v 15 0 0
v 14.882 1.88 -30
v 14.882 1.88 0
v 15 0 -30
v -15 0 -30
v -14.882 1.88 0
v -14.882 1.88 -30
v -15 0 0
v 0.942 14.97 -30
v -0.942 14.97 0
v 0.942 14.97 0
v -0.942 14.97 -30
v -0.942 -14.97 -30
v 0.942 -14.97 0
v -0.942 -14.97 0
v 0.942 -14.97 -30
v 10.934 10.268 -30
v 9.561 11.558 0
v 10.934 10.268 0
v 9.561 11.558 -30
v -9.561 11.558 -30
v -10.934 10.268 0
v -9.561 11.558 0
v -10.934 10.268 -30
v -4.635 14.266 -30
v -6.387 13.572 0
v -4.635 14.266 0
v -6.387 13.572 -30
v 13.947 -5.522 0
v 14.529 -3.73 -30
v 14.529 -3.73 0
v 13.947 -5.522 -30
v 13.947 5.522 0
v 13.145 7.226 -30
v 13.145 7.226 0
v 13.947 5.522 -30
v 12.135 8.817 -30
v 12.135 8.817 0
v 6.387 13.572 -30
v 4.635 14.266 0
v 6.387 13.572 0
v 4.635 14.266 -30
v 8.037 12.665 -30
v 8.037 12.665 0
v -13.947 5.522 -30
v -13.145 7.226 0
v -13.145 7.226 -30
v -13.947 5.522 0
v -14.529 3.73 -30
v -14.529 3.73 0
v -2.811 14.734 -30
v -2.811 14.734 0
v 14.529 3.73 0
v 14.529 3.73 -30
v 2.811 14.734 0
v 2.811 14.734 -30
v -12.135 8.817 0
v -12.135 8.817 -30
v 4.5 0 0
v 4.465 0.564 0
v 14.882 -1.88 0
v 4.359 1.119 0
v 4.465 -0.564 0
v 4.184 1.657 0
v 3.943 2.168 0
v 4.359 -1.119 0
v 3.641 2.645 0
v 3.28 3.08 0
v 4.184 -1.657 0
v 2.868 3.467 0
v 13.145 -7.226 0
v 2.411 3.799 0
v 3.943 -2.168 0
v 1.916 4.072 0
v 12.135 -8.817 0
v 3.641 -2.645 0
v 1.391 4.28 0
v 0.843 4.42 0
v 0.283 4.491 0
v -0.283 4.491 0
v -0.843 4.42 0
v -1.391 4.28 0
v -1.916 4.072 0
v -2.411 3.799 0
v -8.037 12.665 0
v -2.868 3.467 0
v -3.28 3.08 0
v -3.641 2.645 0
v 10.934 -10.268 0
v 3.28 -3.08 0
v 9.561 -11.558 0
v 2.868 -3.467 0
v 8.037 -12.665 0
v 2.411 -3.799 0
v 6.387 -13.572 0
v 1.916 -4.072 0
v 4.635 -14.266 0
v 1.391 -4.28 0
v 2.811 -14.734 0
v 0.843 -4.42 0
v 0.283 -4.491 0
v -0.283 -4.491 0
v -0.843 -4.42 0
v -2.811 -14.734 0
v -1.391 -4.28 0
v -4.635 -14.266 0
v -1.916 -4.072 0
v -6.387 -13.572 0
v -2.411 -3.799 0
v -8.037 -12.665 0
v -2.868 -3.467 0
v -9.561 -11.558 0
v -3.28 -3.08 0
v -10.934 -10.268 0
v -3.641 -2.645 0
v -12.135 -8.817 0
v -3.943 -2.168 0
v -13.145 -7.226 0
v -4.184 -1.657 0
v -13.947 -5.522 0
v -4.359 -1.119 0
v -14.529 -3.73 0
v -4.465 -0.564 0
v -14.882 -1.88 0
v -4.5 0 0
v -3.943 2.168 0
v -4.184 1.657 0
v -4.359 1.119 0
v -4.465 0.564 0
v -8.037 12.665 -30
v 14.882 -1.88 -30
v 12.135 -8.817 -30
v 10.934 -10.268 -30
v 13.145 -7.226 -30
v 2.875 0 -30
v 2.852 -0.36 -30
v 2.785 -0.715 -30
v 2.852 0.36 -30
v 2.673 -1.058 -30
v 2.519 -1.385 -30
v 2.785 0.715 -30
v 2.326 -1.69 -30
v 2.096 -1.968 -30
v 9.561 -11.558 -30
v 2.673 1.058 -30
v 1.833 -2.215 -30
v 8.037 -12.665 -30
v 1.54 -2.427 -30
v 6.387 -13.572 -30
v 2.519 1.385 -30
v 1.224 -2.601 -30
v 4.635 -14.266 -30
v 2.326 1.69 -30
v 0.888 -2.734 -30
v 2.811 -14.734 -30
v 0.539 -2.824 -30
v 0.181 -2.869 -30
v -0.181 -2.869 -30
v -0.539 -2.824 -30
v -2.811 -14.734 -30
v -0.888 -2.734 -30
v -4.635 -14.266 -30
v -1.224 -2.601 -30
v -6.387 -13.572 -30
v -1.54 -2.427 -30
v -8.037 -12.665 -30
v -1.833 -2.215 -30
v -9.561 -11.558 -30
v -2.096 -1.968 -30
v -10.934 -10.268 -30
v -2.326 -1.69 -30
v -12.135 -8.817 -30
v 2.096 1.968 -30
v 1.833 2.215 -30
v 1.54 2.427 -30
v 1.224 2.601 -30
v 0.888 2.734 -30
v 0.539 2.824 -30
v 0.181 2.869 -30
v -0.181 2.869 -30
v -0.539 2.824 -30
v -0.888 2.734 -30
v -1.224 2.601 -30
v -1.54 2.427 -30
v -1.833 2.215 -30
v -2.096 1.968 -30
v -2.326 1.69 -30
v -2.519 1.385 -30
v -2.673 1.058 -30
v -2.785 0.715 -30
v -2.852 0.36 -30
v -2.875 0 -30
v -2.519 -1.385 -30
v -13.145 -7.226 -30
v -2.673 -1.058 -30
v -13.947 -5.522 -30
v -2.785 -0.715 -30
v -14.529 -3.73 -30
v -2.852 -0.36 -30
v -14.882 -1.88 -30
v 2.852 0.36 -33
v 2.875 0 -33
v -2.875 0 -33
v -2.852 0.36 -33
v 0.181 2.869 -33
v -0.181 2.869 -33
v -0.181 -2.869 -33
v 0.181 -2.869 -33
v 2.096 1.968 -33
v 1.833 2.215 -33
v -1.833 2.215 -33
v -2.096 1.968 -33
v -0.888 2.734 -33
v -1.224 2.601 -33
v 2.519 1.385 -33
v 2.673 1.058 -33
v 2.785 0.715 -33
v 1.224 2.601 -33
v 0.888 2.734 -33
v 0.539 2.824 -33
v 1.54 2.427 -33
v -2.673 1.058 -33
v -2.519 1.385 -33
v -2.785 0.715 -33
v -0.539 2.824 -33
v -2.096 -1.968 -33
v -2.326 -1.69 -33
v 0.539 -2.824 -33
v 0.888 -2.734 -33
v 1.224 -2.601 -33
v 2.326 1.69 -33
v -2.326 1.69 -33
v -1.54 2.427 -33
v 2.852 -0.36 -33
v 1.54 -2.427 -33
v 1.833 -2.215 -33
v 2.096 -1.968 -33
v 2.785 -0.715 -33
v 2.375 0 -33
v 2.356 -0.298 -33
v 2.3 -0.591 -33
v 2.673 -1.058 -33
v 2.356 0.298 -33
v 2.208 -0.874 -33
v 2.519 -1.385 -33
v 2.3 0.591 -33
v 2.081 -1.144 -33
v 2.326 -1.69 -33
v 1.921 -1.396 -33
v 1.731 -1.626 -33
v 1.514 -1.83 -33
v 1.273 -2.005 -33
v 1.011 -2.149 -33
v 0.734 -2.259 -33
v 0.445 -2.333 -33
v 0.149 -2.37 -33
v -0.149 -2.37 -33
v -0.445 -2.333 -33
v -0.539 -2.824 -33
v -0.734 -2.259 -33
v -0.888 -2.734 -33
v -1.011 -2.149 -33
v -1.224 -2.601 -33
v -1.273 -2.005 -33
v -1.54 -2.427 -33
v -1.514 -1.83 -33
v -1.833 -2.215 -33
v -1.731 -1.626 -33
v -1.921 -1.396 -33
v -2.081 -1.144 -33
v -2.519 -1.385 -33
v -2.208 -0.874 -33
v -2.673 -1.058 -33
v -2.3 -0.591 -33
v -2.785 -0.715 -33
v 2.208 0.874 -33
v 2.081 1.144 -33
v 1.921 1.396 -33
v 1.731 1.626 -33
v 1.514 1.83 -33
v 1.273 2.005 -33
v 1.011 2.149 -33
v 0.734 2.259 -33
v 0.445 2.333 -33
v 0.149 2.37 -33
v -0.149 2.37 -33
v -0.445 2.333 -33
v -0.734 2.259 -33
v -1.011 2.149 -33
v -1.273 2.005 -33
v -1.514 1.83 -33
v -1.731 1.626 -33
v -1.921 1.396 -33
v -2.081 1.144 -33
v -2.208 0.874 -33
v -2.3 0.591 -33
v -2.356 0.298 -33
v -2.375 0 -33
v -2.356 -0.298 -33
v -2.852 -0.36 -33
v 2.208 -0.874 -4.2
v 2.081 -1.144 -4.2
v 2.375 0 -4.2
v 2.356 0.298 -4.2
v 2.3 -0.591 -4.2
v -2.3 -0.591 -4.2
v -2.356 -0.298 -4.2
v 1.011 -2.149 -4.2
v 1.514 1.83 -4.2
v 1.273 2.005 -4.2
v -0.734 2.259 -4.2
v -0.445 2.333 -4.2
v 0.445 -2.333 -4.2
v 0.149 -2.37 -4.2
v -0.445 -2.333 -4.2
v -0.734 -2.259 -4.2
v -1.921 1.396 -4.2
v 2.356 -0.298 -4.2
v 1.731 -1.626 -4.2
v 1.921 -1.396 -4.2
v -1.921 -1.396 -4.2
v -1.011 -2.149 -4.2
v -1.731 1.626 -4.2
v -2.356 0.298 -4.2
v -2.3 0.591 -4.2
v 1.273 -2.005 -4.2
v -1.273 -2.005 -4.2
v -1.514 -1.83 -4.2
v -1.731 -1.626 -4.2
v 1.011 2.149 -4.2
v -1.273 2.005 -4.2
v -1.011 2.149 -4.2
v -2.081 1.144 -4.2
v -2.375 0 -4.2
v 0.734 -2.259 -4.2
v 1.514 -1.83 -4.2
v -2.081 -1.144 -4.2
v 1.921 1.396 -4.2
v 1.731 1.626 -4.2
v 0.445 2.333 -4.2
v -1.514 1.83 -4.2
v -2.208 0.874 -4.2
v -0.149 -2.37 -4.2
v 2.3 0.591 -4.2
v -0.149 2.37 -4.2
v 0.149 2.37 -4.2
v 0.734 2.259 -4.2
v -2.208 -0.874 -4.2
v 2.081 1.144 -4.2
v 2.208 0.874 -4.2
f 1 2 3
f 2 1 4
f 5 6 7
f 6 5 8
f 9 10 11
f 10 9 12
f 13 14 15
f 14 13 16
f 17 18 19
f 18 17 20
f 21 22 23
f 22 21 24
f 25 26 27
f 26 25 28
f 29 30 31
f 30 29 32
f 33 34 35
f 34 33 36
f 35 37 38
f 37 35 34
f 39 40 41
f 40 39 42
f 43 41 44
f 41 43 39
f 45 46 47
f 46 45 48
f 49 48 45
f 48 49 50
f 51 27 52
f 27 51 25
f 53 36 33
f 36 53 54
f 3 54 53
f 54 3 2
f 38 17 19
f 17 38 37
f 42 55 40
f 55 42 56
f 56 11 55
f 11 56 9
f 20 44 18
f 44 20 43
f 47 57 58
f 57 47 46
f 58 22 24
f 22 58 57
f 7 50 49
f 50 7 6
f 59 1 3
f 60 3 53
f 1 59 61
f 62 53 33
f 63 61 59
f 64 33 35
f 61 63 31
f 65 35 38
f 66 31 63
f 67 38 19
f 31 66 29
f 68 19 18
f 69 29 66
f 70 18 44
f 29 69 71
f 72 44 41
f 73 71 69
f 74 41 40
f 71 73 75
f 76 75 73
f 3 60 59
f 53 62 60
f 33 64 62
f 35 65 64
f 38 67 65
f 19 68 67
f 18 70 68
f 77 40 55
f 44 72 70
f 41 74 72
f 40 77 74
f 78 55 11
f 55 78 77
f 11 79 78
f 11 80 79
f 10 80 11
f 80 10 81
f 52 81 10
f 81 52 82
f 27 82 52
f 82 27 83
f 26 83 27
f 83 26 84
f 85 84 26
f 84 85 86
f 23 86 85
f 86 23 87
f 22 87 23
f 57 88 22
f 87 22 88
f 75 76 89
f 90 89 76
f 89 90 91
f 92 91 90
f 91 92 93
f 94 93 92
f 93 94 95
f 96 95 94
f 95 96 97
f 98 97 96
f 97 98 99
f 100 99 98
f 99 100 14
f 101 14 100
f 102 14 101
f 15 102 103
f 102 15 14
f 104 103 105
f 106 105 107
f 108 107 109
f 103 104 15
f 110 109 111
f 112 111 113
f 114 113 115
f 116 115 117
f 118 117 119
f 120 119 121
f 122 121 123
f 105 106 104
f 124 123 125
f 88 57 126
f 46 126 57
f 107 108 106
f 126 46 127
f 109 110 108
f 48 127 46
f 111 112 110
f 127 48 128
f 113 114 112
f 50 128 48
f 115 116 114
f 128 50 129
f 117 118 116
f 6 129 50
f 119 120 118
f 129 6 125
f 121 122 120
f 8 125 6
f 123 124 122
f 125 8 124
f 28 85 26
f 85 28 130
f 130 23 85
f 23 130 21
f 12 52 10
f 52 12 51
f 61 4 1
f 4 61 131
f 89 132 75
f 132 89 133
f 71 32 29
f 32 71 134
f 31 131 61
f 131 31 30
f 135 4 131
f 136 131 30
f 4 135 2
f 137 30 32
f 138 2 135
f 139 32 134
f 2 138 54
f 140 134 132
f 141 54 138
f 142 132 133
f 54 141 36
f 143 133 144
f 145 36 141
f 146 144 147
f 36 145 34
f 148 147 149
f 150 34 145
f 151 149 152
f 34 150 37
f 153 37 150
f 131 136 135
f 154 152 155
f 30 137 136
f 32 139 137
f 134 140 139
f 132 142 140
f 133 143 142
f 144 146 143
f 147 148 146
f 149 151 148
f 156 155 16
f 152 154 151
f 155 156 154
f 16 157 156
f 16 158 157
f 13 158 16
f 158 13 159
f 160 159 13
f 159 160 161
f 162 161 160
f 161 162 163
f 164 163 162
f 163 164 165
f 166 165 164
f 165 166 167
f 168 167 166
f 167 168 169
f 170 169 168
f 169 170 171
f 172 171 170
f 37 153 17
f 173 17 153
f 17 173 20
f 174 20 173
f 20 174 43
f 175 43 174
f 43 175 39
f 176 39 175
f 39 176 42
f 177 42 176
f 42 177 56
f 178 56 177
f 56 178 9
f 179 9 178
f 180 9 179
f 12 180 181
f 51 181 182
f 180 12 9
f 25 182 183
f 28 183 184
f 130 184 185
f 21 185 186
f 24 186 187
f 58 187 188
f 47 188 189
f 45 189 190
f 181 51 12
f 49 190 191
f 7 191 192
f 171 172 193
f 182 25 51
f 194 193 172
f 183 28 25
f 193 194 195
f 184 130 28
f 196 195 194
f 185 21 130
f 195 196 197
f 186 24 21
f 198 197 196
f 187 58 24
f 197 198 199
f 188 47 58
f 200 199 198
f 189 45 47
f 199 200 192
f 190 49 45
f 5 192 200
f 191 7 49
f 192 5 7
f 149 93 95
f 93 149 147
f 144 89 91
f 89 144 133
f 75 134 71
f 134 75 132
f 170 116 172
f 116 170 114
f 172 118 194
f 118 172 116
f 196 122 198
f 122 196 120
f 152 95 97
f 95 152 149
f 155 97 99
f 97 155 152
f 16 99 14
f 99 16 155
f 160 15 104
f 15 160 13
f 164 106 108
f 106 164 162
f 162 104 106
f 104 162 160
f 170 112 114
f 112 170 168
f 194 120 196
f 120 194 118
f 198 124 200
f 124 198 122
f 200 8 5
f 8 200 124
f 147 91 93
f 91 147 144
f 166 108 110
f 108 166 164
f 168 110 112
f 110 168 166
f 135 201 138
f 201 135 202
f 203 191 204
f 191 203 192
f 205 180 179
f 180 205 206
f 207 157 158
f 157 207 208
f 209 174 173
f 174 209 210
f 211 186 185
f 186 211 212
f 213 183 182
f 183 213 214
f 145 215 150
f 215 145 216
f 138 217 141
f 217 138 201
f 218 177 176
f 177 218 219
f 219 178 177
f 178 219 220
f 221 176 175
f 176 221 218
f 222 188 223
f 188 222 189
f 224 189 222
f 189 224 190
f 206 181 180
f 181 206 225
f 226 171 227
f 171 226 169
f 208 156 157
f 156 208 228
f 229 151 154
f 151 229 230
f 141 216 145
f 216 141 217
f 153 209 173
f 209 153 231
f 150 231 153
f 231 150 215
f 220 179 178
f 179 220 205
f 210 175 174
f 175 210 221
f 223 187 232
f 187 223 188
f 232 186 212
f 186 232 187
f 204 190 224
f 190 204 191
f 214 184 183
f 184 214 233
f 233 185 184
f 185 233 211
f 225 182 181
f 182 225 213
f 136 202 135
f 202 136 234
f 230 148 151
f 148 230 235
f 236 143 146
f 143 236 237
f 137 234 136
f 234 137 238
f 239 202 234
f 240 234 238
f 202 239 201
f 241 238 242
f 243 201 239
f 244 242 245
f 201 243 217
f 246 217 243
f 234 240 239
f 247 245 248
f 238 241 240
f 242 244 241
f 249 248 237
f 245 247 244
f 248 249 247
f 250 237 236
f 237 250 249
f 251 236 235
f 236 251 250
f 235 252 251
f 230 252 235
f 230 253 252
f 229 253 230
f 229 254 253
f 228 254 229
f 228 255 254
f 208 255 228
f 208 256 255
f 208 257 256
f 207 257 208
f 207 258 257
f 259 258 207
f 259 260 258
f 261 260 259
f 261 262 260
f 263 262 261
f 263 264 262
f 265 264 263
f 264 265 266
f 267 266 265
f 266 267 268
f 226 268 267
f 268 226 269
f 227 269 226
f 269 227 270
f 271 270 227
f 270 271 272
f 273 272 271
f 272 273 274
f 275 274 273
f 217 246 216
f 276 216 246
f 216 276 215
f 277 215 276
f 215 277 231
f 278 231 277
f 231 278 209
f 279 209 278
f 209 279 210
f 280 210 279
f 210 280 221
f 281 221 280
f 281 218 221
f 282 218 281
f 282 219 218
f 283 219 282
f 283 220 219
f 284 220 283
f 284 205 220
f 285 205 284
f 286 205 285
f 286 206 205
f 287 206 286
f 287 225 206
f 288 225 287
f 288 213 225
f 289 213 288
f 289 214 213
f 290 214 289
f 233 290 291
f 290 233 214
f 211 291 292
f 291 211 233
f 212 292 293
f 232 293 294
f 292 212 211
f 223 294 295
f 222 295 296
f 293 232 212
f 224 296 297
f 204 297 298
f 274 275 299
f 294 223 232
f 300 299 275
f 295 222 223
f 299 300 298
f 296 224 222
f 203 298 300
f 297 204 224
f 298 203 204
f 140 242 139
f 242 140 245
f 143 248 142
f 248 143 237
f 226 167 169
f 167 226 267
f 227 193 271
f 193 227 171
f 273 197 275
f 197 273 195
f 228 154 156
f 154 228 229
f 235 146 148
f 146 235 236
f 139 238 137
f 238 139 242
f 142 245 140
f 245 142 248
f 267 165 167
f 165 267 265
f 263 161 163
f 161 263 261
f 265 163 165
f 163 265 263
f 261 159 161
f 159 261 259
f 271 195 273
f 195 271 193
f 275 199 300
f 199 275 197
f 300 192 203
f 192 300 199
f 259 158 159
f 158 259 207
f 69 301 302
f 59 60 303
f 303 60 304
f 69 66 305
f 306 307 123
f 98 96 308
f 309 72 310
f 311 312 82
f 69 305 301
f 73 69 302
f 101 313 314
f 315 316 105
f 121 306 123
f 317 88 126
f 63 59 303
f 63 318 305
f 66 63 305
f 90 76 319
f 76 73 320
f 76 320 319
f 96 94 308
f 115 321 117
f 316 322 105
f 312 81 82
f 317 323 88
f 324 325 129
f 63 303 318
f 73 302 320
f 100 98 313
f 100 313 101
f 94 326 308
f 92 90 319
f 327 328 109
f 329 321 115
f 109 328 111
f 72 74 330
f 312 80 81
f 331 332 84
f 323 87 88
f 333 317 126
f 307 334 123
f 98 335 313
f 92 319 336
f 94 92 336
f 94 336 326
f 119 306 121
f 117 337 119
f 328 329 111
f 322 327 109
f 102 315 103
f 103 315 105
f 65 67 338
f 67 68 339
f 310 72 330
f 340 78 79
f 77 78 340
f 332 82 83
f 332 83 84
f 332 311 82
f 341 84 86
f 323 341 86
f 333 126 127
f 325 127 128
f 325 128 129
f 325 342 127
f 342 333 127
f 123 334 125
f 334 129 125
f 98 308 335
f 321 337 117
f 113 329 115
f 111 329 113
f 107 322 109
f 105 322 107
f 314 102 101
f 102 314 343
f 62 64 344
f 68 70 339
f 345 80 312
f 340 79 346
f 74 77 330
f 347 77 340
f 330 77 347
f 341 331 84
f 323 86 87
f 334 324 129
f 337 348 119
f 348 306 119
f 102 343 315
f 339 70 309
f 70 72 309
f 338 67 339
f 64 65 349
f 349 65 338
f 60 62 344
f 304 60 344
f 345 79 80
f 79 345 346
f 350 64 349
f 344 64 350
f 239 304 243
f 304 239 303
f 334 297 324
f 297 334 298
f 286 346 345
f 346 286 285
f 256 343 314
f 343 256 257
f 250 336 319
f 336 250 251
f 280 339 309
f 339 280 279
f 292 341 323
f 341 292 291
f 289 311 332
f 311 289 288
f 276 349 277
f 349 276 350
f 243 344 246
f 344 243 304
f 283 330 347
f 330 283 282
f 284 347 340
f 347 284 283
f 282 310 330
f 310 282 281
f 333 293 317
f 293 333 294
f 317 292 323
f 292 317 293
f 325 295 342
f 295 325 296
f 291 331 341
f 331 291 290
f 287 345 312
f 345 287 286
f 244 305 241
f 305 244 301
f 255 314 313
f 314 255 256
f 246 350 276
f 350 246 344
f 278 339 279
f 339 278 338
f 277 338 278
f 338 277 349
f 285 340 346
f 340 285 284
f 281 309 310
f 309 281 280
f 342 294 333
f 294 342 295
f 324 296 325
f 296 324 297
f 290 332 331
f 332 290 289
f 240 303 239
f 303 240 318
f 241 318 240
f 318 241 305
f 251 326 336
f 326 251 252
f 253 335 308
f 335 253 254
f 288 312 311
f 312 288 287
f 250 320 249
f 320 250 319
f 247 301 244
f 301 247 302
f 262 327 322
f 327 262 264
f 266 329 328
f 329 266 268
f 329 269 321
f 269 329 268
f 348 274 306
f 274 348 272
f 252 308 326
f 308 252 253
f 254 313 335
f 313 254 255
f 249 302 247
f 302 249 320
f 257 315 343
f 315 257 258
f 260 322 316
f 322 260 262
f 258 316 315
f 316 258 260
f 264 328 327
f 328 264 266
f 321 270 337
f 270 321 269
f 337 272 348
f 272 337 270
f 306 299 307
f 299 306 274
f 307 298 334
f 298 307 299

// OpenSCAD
$fn = 50;

difference() {
	union() {
		translate(v = [0, 0, -30.0]) {
			cylinder(h = 30, r = 15.0);
		}
		#translate(v = [0, 0, -33.0]) {
			cylinder(h = 33, r = 2.875);
		}
	}
	union() {
		translate(v = [0, 0, 0]) {
			rotate(a = [0, 0, 0]) {
				difference() {
					union() {
						translate(v = [0, 0, -33.0]) {
							cylinder(h = 33, r = 2.25);
						}
						translate(v = [0, 0, -4.2]) {
							cylinder(h = 4.2, r1 = 2.375, r2 = 4.5);
						}
						translate(v = [0, 0, -33.0]) {
							cylinder(h = 33, r = 2.375);
						}
						translate(v = [0, 0, -33.0]) {
							cylinder(h = 33, r = 2.25);
						}
					}
					union();
				}
			}
		}
	}
}
